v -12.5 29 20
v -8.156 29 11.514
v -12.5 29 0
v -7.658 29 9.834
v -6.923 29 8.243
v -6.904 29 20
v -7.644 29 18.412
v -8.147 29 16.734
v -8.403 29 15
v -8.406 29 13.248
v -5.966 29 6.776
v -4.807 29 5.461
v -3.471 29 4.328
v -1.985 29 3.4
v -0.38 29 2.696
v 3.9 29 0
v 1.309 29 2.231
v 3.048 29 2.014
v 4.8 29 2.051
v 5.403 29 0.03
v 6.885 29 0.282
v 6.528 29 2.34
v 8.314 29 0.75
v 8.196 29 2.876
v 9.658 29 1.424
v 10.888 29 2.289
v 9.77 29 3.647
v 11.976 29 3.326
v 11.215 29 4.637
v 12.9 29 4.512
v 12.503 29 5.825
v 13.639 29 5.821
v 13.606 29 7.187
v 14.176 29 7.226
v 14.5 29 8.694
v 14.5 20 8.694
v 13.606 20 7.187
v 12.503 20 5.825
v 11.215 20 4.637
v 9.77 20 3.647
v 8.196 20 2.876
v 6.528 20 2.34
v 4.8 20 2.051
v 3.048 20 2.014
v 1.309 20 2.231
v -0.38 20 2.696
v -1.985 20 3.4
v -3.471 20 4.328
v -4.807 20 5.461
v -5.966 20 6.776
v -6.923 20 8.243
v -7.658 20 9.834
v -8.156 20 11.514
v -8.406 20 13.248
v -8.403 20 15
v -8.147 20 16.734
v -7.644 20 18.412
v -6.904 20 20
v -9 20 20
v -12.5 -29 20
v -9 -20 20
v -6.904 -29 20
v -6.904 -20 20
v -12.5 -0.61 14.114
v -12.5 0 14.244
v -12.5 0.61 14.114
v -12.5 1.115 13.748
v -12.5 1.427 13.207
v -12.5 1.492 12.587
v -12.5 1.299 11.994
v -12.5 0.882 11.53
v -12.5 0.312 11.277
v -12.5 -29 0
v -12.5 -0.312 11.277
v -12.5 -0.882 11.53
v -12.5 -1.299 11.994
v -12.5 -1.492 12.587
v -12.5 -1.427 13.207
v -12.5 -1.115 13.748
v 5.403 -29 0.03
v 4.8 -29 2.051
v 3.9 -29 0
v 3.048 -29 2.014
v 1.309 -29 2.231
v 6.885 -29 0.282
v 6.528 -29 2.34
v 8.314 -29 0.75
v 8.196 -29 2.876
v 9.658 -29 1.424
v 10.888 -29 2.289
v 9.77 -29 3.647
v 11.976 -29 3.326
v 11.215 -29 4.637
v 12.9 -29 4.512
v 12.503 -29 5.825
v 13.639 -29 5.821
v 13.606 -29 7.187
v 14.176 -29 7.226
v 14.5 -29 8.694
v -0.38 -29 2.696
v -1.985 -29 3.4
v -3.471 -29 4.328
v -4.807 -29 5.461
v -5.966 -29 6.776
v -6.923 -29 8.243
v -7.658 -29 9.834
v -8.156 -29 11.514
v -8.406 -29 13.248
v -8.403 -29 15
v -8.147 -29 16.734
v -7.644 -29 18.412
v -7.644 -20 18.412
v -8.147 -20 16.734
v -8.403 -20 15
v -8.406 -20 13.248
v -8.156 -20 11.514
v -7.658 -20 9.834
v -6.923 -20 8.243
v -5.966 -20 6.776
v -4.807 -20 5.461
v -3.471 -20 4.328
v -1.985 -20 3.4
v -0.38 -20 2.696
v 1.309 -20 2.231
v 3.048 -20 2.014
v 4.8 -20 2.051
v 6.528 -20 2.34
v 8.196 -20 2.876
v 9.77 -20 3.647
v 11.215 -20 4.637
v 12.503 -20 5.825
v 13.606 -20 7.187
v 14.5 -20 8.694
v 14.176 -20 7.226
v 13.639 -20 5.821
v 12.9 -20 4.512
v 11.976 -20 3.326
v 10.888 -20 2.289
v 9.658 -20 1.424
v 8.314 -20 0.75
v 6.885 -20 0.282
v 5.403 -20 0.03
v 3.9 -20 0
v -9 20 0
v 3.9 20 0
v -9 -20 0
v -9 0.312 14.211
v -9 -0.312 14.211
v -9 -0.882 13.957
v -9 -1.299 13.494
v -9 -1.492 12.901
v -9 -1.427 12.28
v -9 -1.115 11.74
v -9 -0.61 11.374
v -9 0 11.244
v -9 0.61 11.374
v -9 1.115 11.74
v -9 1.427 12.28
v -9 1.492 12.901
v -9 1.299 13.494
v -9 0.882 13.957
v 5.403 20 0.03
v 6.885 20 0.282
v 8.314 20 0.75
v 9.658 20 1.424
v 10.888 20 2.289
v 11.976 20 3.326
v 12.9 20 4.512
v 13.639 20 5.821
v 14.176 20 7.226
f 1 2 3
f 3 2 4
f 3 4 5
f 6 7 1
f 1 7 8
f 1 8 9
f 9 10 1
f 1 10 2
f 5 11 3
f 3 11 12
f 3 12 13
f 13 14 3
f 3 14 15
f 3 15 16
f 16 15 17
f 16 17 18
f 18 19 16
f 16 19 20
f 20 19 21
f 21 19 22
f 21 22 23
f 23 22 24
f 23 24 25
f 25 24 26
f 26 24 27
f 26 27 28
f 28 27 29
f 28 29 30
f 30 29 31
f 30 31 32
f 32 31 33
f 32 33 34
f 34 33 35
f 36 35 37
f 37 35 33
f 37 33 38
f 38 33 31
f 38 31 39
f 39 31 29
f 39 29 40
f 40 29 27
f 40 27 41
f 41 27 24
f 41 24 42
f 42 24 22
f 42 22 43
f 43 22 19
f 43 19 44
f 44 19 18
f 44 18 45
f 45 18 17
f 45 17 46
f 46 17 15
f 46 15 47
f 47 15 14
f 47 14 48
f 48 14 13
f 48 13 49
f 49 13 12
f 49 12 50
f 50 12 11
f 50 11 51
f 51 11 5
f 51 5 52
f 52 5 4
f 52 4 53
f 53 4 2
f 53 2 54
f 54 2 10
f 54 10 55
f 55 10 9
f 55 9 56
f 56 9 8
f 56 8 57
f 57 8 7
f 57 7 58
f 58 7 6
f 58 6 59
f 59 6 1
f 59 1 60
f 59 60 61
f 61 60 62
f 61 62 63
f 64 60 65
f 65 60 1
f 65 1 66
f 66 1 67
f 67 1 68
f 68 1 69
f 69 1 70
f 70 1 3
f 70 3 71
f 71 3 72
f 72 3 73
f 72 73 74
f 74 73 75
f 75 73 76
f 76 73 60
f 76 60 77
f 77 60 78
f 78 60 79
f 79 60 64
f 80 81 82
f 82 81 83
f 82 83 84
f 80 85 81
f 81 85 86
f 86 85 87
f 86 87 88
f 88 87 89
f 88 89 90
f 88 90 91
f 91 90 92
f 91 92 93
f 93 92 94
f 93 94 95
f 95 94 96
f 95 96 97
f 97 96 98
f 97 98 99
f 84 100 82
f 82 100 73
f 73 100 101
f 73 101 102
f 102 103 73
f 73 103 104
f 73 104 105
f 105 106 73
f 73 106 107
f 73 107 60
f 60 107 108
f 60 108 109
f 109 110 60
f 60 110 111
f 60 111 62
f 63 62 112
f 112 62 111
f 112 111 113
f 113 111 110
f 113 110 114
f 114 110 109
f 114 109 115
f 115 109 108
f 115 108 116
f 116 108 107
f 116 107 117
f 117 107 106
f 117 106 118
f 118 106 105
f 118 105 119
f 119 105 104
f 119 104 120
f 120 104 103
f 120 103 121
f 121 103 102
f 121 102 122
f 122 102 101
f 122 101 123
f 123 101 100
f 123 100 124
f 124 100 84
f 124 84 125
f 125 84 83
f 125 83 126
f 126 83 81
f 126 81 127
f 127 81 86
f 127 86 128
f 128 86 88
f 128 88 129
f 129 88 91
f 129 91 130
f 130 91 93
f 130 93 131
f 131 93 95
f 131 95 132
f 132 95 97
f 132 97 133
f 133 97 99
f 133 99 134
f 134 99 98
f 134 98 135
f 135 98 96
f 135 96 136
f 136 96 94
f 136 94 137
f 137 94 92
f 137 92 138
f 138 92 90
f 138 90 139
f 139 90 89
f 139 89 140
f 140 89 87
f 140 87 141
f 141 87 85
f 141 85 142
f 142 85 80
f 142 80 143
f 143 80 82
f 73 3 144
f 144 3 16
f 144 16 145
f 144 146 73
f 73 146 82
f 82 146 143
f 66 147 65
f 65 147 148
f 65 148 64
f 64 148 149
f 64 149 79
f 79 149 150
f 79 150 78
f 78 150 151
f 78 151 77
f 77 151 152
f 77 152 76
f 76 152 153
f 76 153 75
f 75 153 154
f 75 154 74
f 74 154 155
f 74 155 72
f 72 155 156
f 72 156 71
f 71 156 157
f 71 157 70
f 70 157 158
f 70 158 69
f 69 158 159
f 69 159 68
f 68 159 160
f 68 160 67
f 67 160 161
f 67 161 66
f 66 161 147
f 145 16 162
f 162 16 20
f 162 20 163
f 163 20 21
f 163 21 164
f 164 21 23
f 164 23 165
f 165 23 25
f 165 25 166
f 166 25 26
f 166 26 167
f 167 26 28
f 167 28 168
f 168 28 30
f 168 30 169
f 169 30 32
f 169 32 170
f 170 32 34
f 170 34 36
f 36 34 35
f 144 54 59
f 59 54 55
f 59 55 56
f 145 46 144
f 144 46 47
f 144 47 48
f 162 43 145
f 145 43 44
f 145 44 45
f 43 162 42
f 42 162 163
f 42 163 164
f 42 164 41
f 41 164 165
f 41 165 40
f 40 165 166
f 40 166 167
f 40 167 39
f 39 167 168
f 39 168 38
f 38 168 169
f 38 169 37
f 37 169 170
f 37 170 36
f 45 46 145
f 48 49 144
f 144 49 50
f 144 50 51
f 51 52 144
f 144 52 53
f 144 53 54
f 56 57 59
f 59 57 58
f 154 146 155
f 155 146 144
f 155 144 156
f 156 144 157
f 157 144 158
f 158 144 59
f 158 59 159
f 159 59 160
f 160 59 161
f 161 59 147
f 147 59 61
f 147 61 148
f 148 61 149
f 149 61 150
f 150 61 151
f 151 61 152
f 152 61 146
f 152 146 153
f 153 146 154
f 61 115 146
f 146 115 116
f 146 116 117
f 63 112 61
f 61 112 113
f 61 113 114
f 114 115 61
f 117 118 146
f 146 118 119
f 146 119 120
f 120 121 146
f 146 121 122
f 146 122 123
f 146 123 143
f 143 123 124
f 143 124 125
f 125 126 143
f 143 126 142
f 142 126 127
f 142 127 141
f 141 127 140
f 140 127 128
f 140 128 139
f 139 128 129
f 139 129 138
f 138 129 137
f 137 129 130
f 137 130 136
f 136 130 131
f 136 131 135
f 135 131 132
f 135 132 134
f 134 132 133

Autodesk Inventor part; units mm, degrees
ref_plane "YZ Plane" through (0, 0, 0) normal (1, 0, 0) x (0, 1, 0)
ref_plane "Work Plane1" through (-14.5, -35, 0) normal (0, -1, 0) x (1, 0, 0)
sketch "Sketch2" plane through (-14.5, -35, 0) normal (0, -1, 0) x (1, 0, 0)
  line L0 (4.3469, 0) -> (4.3469, 20)
  line L1 (7.596, 20) -> (7.4184, 20) projected
  line L2 (4.3469, 20) -> (7.596, 20)
  arc A0 (7.596, 20) -> (29, 8.6937) centre (18.17, 14.1045) ccw
  line L3 (4.3469, 0) -> (18.3998, 0)
  arc A1 (18.3998, 0) -> (29, 8.6937) centre (18.9461, 10.1431) ccw
  point P0 (14.5, 0)
  point P1 (5, 0)
  point P2 (18.2531, 1.9984)
extrude "Extrusion1" add sketch "Sketch2" against normal blind 15
ref_plane "Work Plane4" through (-14.5, -35, 0) normal (-1, 0, 0) x (0, 0, 1)
sketch "Sketch3" plane through (-14.5, -35, 0) normal (-1, 0, 0) x (0, 0, 1)
  line L0 (20, 0) -> (20, 70) projected
  line L1 (0, 0) -> (0, 21) projected
  line L2 (20, 70) -> (0, 70)
  line L3 (0, 70) -> (0, 0)
  line L4 (0, 0) -> (20, 0)
  line L5 (20, 0) -> (20, 70)
  point P0 (0, 35)
extrude "Extrusion2" add sketch "Sketch3" against normal blind 5.5
mirror "Mirror3" about plane through (0, 0, 0) normal (0, 1, 0) of "Extrusion1"
sketch "Sketch4" plane through (-9, -35, 0) normal (1, 0, 0) x (0, 0, -1)
  line L0 (-20, 15) -> (-1.9981, 15) projected
  line L1 (-12.7438, 15) -> (-12.7438, 55)
  line L2 (0, 55) -> (-20, 55) projected
  line L3 (-12.7438, 35) -> (-17.7089, 35)
  circle A0 centre (-12.7438, 35) radius 1.5
  point P0 (0, 35)
  point P1 (-8.6937, 15)
  dimension "d4" = 3
extrude "Extrusion3" cut sketch "Sketch4" against normal blind 10.375
sketch "Sketch5" plane through (-14.5, -35, 0) normal (-1, 0, 0) x (0, 0, 1)
  line L0 (20, 70) -> (0, 70) projected
  line L1 (0, 0) -> (20, 0) projected
  line L2 (20, 70) -> (0, 70)
  line L3 (0, 70) -> (0, 0)
  line L4 (0, 0) -> (20, 0)
  line L5 (20, 0) -> (20, 70)
  point P0 (0, 35)
extrude "Extrusion4" cut sketch "Sketch5" against normal blind 2
sketch "Sketch7" plane through (-14.5, -35, 0) normal (0, -1, 0) x (1, 0, 0)
  line L0 (7.596, 20) -> (2, 20) projected
  line L1 (2, 20) -> (2, 0) projected
  line L2 (2, 20) -> (2, 0)
  arc A0 (18.3998, 0) -> (29, 8.6937) centre (18.9461, 10.1431) ccw projected
  line L3 (5.5, 20) -> (7.596, 20) projected
  arc A1 (7.596, 20) -> (29, 8.6937) centre (18.17, 14.1045) ccw
  arc A2 (7.596, 20) -> (29, 8.6937) centre (18.17, 14.1045) ccw projected
  arc A3 (19.4924, 0) -> (29, 8.6937) centre (18.9461, 10.1431) ccw
  line L4 (2, 20) -> (7.596, 20)
  line L5 (2, 0) -> (18.3998, 0) projected
  line L6 (2, 0) -> (18.3998, 0)
  point P0 (14.5, 0)
extrude "Extrusion5" cut sketch "Sketch7" against normal blind 6
sketch "Sketch8" plane through (-12.5, 35, 0) normal (0, 1, 0) x (1, 0, 0)
  line L0 (3.5, -20) -> (5.596, -20) projected
  line L1 (0, 0) -> (0, -20) projected
  line L2 (5.596, -20) -> (0, -20)
  line L3 (0, -20) -> (0, 0)
  arc A0 (27, -8.6937) -> (16.3998, 0) centre (16.9461, -10.1431) ccw projected
  line L4 (0, 0) -> (16.3998, 0)
  arc A1 (27, -8.6937) -> (5.596, -20) centre (16.17, -14.1045) ccw projected
  arc A2 (27, -8.6937) -> (5.596, -20) centre (16.17, -14.1045) ccw
  arc A3 (27, -8.6937) -> (16.3998, 0) centre (16.9461, -10.1431) ccw
  point P0 (12.5, 0)
extrude "Extrusion6" cut sketch "Sketch8" against normal blind 6
properties part number "Speed Champ"
